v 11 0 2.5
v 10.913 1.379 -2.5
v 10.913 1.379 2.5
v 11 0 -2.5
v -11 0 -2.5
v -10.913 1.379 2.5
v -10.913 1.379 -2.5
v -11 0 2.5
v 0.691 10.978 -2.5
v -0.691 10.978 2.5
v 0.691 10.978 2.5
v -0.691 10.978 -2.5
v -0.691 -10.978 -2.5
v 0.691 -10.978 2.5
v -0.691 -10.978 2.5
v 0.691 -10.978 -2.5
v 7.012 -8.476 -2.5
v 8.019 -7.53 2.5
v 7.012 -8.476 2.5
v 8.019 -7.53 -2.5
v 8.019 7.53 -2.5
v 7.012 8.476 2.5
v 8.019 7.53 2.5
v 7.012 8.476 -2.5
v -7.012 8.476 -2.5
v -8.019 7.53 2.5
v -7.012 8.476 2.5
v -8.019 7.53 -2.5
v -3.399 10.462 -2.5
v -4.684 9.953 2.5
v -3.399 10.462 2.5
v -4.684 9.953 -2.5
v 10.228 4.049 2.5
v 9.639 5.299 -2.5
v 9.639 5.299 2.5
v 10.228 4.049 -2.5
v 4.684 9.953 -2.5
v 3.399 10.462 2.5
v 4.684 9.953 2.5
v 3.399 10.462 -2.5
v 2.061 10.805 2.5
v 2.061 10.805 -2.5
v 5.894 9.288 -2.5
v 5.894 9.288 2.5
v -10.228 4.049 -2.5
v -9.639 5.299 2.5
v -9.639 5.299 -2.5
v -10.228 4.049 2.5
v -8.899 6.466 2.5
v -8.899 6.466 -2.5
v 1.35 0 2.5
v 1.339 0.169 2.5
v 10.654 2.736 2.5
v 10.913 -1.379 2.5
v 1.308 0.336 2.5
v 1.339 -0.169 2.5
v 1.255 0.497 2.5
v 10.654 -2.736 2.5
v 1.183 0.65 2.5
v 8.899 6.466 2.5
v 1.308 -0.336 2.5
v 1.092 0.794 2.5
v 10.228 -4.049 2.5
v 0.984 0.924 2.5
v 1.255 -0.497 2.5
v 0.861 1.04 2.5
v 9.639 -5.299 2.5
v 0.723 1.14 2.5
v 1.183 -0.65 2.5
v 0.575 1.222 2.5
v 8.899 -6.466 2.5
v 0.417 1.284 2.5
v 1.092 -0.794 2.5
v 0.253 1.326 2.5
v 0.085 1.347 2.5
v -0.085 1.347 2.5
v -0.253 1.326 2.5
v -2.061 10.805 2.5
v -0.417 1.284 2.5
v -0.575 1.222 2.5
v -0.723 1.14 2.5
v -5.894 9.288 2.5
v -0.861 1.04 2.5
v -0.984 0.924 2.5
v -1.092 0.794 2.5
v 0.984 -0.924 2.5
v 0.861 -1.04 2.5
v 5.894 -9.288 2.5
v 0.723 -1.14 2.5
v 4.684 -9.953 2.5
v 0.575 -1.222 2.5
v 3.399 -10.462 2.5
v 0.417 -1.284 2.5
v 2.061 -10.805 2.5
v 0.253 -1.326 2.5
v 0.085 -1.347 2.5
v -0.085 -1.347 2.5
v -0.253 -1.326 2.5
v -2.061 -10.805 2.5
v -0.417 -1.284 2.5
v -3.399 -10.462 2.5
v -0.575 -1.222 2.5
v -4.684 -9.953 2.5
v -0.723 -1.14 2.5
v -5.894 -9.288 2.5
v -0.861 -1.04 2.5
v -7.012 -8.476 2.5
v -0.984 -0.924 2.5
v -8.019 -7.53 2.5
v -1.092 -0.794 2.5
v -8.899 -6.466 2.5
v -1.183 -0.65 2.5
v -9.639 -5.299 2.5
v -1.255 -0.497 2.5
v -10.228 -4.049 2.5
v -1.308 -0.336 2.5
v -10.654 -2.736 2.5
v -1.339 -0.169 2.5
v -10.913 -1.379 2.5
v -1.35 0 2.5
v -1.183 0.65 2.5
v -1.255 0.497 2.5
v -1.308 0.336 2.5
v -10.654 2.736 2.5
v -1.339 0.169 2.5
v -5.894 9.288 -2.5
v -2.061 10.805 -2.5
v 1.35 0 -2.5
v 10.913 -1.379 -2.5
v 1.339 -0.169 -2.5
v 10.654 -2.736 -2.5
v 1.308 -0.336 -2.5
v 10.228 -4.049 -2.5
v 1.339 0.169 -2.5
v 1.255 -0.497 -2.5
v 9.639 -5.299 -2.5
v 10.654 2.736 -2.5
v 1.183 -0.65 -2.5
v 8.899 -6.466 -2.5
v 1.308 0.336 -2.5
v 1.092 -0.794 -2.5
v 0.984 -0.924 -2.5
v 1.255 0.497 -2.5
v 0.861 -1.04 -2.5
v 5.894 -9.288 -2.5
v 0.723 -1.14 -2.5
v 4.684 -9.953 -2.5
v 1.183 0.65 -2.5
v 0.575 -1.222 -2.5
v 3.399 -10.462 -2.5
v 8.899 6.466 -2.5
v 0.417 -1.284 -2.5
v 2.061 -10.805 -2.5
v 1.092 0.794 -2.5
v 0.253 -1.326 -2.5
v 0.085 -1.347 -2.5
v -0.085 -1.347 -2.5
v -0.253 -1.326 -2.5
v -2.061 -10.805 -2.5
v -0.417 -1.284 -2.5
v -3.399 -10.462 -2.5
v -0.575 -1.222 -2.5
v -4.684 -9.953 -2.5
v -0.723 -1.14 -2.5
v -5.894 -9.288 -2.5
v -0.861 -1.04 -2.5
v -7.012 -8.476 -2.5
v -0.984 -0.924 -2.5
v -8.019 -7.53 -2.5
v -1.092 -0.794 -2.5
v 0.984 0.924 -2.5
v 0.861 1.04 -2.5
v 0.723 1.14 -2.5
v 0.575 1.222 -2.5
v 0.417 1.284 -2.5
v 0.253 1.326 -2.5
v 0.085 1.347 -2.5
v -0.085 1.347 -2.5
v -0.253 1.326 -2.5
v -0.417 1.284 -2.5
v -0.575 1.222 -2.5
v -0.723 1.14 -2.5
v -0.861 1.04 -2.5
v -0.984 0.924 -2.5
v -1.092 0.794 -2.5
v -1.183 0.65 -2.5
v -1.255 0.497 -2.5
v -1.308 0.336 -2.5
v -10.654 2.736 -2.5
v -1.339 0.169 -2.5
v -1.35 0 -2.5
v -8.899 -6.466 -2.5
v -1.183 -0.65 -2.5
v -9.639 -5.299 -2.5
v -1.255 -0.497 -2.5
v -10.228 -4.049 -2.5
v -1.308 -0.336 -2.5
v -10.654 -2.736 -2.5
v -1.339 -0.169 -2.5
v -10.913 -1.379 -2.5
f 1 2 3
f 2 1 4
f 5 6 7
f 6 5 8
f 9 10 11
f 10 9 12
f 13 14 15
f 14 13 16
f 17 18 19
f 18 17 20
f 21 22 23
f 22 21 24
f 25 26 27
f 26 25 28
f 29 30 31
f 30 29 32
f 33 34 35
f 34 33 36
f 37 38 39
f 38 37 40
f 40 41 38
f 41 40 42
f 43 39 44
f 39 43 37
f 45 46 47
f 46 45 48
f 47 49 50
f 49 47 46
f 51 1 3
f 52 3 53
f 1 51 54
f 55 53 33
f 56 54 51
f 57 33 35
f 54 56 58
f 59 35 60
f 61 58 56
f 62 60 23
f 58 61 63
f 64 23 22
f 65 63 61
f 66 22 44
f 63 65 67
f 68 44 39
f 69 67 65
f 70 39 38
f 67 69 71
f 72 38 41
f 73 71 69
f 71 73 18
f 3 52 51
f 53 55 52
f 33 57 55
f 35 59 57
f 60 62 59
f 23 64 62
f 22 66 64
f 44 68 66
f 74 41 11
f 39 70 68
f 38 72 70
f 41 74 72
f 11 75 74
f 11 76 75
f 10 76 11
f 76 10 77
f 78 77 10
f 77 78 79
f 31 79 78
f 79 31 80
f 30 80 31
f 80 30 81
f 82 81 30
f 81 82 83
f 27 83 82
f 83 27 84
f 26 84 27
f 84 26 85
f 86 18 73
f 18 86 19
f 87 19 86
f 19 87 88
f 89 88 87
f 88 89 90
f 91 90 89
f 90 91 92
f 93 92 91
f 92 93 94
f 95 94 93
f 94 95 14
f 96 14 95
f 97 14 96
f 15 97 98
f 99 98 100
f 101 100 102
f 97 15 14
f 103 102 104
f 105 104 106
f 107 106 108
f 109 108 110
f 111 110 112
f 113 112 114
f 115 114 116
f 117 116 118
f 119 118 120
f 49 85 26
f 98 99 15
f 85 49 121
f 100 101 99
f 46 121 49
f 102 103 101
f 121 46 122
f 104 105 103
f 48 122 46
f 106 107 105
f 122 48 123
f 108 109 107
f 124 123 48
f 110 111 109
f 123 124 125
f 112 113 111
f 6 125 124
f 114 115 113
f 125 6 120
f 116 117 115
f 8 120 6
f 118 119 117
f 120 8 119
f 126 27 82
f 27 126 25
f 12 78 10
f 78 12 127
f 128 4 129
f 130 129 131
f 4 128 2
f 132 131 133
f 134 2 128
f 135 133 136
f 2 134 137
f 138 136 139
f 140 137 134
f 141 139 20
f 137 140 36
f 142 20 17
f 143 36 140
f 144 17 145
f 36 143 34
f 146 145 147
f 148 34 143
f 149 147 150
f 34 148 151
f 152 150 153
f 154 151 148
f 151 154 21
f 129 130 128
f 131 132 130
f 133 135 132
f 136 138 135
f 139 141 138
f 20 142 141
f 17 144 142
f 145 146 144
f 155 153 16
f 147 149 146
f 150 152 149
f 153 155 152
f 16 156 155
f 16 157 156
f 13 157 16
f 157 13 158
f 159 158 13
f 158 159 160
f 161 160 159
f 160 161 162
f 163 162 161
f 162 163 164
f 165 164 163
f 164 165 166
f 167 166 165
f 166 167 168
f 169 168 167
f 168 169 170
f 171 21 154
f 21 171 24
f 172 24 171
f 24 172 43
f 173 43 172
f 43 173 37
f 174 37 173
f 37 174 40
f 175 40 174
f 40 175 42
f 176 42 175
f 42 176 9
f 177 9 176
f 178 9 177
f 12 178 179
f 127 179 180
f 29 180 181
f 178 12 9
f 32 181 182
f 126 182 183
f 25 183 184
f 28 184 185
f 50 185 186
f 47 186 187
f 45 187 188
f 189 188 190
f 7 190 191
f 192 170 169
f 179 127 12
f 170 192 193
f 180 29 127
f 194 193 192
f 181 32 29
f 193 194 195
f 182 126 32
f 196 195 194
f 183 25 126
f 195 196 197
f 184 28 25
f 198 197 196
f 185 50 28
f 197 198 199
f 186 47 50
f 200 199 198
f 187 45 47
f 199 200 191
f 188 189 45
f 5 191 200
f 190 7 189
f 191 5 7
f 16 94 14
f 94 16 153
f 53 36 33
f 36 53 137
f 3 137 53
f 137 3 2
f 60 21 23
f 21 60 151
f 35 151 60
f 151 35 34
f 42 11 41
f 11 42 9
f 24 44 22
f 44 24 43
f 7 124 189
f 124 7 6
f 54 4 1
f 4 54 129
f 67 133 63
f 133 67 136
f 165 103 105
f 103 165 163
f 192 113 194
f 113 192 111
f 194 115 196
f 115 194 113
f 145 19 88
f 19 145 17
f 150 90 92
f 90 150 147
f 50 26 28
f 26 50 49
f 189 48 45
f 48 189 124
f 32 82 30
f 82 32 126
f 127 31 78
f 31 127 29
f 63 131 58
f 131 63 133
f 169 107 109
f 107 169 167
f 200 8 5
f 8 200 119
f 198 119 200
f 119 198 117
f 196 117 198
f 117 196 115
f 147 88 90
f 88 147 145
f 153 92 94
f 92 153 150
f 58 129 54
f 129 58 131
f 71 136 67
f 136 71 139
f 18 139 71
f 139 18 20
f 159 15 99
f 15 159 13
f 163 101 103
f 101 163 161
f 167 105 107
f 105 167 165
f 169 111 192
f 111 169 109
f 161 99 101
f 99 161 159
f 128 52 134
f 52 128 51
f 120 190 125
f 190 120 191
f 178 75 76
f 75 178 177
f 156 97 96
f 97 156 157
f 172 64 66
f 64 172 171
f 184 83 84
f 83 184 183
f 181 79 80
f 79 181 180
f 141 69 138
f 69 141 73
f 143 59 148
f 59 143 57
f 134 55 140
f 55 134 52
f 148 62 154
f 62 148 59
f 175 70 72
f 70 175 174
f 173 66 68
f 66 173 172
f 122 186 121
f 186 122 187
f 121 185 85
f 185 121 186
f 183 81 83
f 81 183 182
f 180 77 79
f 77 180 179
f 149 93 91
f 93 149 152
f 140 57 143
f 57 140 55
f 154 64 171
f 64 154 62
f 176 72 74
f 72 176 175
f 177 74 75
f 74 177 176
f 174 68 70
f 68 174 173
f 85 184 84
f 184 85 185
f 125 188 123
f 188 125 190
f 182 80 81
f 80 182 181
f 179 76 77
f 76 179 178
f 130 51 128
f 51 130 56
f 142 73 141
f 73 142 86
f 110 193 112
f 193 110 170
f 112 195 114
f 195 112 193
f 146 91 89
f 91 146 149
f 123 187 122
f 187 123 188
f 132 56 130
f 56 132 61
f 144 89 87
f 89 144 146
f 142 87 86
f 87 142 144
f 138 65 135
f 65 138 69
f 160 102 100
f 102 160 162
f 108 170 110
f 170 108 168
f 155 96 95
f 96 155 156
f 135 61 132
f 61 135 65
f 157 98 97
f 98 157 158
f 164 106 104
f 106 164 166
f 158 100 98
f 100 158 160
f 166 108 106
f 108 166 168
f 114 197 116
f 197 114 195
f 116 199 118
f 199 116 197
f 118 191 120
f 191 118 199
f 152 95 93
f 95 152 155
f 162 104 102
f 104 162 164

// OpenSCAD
$fn = 50;


difference() {
	union() {
		translate(v = [0, 0, -2.5000000000]) {
			cylinder(h = 5, r = 11.0000000000);
		}
	}
	union() {
		translate(v = [0, 0, -100.0000000000]) {
			cylinder(h = 200, r = 1.3500000000);
		}
	}
}
